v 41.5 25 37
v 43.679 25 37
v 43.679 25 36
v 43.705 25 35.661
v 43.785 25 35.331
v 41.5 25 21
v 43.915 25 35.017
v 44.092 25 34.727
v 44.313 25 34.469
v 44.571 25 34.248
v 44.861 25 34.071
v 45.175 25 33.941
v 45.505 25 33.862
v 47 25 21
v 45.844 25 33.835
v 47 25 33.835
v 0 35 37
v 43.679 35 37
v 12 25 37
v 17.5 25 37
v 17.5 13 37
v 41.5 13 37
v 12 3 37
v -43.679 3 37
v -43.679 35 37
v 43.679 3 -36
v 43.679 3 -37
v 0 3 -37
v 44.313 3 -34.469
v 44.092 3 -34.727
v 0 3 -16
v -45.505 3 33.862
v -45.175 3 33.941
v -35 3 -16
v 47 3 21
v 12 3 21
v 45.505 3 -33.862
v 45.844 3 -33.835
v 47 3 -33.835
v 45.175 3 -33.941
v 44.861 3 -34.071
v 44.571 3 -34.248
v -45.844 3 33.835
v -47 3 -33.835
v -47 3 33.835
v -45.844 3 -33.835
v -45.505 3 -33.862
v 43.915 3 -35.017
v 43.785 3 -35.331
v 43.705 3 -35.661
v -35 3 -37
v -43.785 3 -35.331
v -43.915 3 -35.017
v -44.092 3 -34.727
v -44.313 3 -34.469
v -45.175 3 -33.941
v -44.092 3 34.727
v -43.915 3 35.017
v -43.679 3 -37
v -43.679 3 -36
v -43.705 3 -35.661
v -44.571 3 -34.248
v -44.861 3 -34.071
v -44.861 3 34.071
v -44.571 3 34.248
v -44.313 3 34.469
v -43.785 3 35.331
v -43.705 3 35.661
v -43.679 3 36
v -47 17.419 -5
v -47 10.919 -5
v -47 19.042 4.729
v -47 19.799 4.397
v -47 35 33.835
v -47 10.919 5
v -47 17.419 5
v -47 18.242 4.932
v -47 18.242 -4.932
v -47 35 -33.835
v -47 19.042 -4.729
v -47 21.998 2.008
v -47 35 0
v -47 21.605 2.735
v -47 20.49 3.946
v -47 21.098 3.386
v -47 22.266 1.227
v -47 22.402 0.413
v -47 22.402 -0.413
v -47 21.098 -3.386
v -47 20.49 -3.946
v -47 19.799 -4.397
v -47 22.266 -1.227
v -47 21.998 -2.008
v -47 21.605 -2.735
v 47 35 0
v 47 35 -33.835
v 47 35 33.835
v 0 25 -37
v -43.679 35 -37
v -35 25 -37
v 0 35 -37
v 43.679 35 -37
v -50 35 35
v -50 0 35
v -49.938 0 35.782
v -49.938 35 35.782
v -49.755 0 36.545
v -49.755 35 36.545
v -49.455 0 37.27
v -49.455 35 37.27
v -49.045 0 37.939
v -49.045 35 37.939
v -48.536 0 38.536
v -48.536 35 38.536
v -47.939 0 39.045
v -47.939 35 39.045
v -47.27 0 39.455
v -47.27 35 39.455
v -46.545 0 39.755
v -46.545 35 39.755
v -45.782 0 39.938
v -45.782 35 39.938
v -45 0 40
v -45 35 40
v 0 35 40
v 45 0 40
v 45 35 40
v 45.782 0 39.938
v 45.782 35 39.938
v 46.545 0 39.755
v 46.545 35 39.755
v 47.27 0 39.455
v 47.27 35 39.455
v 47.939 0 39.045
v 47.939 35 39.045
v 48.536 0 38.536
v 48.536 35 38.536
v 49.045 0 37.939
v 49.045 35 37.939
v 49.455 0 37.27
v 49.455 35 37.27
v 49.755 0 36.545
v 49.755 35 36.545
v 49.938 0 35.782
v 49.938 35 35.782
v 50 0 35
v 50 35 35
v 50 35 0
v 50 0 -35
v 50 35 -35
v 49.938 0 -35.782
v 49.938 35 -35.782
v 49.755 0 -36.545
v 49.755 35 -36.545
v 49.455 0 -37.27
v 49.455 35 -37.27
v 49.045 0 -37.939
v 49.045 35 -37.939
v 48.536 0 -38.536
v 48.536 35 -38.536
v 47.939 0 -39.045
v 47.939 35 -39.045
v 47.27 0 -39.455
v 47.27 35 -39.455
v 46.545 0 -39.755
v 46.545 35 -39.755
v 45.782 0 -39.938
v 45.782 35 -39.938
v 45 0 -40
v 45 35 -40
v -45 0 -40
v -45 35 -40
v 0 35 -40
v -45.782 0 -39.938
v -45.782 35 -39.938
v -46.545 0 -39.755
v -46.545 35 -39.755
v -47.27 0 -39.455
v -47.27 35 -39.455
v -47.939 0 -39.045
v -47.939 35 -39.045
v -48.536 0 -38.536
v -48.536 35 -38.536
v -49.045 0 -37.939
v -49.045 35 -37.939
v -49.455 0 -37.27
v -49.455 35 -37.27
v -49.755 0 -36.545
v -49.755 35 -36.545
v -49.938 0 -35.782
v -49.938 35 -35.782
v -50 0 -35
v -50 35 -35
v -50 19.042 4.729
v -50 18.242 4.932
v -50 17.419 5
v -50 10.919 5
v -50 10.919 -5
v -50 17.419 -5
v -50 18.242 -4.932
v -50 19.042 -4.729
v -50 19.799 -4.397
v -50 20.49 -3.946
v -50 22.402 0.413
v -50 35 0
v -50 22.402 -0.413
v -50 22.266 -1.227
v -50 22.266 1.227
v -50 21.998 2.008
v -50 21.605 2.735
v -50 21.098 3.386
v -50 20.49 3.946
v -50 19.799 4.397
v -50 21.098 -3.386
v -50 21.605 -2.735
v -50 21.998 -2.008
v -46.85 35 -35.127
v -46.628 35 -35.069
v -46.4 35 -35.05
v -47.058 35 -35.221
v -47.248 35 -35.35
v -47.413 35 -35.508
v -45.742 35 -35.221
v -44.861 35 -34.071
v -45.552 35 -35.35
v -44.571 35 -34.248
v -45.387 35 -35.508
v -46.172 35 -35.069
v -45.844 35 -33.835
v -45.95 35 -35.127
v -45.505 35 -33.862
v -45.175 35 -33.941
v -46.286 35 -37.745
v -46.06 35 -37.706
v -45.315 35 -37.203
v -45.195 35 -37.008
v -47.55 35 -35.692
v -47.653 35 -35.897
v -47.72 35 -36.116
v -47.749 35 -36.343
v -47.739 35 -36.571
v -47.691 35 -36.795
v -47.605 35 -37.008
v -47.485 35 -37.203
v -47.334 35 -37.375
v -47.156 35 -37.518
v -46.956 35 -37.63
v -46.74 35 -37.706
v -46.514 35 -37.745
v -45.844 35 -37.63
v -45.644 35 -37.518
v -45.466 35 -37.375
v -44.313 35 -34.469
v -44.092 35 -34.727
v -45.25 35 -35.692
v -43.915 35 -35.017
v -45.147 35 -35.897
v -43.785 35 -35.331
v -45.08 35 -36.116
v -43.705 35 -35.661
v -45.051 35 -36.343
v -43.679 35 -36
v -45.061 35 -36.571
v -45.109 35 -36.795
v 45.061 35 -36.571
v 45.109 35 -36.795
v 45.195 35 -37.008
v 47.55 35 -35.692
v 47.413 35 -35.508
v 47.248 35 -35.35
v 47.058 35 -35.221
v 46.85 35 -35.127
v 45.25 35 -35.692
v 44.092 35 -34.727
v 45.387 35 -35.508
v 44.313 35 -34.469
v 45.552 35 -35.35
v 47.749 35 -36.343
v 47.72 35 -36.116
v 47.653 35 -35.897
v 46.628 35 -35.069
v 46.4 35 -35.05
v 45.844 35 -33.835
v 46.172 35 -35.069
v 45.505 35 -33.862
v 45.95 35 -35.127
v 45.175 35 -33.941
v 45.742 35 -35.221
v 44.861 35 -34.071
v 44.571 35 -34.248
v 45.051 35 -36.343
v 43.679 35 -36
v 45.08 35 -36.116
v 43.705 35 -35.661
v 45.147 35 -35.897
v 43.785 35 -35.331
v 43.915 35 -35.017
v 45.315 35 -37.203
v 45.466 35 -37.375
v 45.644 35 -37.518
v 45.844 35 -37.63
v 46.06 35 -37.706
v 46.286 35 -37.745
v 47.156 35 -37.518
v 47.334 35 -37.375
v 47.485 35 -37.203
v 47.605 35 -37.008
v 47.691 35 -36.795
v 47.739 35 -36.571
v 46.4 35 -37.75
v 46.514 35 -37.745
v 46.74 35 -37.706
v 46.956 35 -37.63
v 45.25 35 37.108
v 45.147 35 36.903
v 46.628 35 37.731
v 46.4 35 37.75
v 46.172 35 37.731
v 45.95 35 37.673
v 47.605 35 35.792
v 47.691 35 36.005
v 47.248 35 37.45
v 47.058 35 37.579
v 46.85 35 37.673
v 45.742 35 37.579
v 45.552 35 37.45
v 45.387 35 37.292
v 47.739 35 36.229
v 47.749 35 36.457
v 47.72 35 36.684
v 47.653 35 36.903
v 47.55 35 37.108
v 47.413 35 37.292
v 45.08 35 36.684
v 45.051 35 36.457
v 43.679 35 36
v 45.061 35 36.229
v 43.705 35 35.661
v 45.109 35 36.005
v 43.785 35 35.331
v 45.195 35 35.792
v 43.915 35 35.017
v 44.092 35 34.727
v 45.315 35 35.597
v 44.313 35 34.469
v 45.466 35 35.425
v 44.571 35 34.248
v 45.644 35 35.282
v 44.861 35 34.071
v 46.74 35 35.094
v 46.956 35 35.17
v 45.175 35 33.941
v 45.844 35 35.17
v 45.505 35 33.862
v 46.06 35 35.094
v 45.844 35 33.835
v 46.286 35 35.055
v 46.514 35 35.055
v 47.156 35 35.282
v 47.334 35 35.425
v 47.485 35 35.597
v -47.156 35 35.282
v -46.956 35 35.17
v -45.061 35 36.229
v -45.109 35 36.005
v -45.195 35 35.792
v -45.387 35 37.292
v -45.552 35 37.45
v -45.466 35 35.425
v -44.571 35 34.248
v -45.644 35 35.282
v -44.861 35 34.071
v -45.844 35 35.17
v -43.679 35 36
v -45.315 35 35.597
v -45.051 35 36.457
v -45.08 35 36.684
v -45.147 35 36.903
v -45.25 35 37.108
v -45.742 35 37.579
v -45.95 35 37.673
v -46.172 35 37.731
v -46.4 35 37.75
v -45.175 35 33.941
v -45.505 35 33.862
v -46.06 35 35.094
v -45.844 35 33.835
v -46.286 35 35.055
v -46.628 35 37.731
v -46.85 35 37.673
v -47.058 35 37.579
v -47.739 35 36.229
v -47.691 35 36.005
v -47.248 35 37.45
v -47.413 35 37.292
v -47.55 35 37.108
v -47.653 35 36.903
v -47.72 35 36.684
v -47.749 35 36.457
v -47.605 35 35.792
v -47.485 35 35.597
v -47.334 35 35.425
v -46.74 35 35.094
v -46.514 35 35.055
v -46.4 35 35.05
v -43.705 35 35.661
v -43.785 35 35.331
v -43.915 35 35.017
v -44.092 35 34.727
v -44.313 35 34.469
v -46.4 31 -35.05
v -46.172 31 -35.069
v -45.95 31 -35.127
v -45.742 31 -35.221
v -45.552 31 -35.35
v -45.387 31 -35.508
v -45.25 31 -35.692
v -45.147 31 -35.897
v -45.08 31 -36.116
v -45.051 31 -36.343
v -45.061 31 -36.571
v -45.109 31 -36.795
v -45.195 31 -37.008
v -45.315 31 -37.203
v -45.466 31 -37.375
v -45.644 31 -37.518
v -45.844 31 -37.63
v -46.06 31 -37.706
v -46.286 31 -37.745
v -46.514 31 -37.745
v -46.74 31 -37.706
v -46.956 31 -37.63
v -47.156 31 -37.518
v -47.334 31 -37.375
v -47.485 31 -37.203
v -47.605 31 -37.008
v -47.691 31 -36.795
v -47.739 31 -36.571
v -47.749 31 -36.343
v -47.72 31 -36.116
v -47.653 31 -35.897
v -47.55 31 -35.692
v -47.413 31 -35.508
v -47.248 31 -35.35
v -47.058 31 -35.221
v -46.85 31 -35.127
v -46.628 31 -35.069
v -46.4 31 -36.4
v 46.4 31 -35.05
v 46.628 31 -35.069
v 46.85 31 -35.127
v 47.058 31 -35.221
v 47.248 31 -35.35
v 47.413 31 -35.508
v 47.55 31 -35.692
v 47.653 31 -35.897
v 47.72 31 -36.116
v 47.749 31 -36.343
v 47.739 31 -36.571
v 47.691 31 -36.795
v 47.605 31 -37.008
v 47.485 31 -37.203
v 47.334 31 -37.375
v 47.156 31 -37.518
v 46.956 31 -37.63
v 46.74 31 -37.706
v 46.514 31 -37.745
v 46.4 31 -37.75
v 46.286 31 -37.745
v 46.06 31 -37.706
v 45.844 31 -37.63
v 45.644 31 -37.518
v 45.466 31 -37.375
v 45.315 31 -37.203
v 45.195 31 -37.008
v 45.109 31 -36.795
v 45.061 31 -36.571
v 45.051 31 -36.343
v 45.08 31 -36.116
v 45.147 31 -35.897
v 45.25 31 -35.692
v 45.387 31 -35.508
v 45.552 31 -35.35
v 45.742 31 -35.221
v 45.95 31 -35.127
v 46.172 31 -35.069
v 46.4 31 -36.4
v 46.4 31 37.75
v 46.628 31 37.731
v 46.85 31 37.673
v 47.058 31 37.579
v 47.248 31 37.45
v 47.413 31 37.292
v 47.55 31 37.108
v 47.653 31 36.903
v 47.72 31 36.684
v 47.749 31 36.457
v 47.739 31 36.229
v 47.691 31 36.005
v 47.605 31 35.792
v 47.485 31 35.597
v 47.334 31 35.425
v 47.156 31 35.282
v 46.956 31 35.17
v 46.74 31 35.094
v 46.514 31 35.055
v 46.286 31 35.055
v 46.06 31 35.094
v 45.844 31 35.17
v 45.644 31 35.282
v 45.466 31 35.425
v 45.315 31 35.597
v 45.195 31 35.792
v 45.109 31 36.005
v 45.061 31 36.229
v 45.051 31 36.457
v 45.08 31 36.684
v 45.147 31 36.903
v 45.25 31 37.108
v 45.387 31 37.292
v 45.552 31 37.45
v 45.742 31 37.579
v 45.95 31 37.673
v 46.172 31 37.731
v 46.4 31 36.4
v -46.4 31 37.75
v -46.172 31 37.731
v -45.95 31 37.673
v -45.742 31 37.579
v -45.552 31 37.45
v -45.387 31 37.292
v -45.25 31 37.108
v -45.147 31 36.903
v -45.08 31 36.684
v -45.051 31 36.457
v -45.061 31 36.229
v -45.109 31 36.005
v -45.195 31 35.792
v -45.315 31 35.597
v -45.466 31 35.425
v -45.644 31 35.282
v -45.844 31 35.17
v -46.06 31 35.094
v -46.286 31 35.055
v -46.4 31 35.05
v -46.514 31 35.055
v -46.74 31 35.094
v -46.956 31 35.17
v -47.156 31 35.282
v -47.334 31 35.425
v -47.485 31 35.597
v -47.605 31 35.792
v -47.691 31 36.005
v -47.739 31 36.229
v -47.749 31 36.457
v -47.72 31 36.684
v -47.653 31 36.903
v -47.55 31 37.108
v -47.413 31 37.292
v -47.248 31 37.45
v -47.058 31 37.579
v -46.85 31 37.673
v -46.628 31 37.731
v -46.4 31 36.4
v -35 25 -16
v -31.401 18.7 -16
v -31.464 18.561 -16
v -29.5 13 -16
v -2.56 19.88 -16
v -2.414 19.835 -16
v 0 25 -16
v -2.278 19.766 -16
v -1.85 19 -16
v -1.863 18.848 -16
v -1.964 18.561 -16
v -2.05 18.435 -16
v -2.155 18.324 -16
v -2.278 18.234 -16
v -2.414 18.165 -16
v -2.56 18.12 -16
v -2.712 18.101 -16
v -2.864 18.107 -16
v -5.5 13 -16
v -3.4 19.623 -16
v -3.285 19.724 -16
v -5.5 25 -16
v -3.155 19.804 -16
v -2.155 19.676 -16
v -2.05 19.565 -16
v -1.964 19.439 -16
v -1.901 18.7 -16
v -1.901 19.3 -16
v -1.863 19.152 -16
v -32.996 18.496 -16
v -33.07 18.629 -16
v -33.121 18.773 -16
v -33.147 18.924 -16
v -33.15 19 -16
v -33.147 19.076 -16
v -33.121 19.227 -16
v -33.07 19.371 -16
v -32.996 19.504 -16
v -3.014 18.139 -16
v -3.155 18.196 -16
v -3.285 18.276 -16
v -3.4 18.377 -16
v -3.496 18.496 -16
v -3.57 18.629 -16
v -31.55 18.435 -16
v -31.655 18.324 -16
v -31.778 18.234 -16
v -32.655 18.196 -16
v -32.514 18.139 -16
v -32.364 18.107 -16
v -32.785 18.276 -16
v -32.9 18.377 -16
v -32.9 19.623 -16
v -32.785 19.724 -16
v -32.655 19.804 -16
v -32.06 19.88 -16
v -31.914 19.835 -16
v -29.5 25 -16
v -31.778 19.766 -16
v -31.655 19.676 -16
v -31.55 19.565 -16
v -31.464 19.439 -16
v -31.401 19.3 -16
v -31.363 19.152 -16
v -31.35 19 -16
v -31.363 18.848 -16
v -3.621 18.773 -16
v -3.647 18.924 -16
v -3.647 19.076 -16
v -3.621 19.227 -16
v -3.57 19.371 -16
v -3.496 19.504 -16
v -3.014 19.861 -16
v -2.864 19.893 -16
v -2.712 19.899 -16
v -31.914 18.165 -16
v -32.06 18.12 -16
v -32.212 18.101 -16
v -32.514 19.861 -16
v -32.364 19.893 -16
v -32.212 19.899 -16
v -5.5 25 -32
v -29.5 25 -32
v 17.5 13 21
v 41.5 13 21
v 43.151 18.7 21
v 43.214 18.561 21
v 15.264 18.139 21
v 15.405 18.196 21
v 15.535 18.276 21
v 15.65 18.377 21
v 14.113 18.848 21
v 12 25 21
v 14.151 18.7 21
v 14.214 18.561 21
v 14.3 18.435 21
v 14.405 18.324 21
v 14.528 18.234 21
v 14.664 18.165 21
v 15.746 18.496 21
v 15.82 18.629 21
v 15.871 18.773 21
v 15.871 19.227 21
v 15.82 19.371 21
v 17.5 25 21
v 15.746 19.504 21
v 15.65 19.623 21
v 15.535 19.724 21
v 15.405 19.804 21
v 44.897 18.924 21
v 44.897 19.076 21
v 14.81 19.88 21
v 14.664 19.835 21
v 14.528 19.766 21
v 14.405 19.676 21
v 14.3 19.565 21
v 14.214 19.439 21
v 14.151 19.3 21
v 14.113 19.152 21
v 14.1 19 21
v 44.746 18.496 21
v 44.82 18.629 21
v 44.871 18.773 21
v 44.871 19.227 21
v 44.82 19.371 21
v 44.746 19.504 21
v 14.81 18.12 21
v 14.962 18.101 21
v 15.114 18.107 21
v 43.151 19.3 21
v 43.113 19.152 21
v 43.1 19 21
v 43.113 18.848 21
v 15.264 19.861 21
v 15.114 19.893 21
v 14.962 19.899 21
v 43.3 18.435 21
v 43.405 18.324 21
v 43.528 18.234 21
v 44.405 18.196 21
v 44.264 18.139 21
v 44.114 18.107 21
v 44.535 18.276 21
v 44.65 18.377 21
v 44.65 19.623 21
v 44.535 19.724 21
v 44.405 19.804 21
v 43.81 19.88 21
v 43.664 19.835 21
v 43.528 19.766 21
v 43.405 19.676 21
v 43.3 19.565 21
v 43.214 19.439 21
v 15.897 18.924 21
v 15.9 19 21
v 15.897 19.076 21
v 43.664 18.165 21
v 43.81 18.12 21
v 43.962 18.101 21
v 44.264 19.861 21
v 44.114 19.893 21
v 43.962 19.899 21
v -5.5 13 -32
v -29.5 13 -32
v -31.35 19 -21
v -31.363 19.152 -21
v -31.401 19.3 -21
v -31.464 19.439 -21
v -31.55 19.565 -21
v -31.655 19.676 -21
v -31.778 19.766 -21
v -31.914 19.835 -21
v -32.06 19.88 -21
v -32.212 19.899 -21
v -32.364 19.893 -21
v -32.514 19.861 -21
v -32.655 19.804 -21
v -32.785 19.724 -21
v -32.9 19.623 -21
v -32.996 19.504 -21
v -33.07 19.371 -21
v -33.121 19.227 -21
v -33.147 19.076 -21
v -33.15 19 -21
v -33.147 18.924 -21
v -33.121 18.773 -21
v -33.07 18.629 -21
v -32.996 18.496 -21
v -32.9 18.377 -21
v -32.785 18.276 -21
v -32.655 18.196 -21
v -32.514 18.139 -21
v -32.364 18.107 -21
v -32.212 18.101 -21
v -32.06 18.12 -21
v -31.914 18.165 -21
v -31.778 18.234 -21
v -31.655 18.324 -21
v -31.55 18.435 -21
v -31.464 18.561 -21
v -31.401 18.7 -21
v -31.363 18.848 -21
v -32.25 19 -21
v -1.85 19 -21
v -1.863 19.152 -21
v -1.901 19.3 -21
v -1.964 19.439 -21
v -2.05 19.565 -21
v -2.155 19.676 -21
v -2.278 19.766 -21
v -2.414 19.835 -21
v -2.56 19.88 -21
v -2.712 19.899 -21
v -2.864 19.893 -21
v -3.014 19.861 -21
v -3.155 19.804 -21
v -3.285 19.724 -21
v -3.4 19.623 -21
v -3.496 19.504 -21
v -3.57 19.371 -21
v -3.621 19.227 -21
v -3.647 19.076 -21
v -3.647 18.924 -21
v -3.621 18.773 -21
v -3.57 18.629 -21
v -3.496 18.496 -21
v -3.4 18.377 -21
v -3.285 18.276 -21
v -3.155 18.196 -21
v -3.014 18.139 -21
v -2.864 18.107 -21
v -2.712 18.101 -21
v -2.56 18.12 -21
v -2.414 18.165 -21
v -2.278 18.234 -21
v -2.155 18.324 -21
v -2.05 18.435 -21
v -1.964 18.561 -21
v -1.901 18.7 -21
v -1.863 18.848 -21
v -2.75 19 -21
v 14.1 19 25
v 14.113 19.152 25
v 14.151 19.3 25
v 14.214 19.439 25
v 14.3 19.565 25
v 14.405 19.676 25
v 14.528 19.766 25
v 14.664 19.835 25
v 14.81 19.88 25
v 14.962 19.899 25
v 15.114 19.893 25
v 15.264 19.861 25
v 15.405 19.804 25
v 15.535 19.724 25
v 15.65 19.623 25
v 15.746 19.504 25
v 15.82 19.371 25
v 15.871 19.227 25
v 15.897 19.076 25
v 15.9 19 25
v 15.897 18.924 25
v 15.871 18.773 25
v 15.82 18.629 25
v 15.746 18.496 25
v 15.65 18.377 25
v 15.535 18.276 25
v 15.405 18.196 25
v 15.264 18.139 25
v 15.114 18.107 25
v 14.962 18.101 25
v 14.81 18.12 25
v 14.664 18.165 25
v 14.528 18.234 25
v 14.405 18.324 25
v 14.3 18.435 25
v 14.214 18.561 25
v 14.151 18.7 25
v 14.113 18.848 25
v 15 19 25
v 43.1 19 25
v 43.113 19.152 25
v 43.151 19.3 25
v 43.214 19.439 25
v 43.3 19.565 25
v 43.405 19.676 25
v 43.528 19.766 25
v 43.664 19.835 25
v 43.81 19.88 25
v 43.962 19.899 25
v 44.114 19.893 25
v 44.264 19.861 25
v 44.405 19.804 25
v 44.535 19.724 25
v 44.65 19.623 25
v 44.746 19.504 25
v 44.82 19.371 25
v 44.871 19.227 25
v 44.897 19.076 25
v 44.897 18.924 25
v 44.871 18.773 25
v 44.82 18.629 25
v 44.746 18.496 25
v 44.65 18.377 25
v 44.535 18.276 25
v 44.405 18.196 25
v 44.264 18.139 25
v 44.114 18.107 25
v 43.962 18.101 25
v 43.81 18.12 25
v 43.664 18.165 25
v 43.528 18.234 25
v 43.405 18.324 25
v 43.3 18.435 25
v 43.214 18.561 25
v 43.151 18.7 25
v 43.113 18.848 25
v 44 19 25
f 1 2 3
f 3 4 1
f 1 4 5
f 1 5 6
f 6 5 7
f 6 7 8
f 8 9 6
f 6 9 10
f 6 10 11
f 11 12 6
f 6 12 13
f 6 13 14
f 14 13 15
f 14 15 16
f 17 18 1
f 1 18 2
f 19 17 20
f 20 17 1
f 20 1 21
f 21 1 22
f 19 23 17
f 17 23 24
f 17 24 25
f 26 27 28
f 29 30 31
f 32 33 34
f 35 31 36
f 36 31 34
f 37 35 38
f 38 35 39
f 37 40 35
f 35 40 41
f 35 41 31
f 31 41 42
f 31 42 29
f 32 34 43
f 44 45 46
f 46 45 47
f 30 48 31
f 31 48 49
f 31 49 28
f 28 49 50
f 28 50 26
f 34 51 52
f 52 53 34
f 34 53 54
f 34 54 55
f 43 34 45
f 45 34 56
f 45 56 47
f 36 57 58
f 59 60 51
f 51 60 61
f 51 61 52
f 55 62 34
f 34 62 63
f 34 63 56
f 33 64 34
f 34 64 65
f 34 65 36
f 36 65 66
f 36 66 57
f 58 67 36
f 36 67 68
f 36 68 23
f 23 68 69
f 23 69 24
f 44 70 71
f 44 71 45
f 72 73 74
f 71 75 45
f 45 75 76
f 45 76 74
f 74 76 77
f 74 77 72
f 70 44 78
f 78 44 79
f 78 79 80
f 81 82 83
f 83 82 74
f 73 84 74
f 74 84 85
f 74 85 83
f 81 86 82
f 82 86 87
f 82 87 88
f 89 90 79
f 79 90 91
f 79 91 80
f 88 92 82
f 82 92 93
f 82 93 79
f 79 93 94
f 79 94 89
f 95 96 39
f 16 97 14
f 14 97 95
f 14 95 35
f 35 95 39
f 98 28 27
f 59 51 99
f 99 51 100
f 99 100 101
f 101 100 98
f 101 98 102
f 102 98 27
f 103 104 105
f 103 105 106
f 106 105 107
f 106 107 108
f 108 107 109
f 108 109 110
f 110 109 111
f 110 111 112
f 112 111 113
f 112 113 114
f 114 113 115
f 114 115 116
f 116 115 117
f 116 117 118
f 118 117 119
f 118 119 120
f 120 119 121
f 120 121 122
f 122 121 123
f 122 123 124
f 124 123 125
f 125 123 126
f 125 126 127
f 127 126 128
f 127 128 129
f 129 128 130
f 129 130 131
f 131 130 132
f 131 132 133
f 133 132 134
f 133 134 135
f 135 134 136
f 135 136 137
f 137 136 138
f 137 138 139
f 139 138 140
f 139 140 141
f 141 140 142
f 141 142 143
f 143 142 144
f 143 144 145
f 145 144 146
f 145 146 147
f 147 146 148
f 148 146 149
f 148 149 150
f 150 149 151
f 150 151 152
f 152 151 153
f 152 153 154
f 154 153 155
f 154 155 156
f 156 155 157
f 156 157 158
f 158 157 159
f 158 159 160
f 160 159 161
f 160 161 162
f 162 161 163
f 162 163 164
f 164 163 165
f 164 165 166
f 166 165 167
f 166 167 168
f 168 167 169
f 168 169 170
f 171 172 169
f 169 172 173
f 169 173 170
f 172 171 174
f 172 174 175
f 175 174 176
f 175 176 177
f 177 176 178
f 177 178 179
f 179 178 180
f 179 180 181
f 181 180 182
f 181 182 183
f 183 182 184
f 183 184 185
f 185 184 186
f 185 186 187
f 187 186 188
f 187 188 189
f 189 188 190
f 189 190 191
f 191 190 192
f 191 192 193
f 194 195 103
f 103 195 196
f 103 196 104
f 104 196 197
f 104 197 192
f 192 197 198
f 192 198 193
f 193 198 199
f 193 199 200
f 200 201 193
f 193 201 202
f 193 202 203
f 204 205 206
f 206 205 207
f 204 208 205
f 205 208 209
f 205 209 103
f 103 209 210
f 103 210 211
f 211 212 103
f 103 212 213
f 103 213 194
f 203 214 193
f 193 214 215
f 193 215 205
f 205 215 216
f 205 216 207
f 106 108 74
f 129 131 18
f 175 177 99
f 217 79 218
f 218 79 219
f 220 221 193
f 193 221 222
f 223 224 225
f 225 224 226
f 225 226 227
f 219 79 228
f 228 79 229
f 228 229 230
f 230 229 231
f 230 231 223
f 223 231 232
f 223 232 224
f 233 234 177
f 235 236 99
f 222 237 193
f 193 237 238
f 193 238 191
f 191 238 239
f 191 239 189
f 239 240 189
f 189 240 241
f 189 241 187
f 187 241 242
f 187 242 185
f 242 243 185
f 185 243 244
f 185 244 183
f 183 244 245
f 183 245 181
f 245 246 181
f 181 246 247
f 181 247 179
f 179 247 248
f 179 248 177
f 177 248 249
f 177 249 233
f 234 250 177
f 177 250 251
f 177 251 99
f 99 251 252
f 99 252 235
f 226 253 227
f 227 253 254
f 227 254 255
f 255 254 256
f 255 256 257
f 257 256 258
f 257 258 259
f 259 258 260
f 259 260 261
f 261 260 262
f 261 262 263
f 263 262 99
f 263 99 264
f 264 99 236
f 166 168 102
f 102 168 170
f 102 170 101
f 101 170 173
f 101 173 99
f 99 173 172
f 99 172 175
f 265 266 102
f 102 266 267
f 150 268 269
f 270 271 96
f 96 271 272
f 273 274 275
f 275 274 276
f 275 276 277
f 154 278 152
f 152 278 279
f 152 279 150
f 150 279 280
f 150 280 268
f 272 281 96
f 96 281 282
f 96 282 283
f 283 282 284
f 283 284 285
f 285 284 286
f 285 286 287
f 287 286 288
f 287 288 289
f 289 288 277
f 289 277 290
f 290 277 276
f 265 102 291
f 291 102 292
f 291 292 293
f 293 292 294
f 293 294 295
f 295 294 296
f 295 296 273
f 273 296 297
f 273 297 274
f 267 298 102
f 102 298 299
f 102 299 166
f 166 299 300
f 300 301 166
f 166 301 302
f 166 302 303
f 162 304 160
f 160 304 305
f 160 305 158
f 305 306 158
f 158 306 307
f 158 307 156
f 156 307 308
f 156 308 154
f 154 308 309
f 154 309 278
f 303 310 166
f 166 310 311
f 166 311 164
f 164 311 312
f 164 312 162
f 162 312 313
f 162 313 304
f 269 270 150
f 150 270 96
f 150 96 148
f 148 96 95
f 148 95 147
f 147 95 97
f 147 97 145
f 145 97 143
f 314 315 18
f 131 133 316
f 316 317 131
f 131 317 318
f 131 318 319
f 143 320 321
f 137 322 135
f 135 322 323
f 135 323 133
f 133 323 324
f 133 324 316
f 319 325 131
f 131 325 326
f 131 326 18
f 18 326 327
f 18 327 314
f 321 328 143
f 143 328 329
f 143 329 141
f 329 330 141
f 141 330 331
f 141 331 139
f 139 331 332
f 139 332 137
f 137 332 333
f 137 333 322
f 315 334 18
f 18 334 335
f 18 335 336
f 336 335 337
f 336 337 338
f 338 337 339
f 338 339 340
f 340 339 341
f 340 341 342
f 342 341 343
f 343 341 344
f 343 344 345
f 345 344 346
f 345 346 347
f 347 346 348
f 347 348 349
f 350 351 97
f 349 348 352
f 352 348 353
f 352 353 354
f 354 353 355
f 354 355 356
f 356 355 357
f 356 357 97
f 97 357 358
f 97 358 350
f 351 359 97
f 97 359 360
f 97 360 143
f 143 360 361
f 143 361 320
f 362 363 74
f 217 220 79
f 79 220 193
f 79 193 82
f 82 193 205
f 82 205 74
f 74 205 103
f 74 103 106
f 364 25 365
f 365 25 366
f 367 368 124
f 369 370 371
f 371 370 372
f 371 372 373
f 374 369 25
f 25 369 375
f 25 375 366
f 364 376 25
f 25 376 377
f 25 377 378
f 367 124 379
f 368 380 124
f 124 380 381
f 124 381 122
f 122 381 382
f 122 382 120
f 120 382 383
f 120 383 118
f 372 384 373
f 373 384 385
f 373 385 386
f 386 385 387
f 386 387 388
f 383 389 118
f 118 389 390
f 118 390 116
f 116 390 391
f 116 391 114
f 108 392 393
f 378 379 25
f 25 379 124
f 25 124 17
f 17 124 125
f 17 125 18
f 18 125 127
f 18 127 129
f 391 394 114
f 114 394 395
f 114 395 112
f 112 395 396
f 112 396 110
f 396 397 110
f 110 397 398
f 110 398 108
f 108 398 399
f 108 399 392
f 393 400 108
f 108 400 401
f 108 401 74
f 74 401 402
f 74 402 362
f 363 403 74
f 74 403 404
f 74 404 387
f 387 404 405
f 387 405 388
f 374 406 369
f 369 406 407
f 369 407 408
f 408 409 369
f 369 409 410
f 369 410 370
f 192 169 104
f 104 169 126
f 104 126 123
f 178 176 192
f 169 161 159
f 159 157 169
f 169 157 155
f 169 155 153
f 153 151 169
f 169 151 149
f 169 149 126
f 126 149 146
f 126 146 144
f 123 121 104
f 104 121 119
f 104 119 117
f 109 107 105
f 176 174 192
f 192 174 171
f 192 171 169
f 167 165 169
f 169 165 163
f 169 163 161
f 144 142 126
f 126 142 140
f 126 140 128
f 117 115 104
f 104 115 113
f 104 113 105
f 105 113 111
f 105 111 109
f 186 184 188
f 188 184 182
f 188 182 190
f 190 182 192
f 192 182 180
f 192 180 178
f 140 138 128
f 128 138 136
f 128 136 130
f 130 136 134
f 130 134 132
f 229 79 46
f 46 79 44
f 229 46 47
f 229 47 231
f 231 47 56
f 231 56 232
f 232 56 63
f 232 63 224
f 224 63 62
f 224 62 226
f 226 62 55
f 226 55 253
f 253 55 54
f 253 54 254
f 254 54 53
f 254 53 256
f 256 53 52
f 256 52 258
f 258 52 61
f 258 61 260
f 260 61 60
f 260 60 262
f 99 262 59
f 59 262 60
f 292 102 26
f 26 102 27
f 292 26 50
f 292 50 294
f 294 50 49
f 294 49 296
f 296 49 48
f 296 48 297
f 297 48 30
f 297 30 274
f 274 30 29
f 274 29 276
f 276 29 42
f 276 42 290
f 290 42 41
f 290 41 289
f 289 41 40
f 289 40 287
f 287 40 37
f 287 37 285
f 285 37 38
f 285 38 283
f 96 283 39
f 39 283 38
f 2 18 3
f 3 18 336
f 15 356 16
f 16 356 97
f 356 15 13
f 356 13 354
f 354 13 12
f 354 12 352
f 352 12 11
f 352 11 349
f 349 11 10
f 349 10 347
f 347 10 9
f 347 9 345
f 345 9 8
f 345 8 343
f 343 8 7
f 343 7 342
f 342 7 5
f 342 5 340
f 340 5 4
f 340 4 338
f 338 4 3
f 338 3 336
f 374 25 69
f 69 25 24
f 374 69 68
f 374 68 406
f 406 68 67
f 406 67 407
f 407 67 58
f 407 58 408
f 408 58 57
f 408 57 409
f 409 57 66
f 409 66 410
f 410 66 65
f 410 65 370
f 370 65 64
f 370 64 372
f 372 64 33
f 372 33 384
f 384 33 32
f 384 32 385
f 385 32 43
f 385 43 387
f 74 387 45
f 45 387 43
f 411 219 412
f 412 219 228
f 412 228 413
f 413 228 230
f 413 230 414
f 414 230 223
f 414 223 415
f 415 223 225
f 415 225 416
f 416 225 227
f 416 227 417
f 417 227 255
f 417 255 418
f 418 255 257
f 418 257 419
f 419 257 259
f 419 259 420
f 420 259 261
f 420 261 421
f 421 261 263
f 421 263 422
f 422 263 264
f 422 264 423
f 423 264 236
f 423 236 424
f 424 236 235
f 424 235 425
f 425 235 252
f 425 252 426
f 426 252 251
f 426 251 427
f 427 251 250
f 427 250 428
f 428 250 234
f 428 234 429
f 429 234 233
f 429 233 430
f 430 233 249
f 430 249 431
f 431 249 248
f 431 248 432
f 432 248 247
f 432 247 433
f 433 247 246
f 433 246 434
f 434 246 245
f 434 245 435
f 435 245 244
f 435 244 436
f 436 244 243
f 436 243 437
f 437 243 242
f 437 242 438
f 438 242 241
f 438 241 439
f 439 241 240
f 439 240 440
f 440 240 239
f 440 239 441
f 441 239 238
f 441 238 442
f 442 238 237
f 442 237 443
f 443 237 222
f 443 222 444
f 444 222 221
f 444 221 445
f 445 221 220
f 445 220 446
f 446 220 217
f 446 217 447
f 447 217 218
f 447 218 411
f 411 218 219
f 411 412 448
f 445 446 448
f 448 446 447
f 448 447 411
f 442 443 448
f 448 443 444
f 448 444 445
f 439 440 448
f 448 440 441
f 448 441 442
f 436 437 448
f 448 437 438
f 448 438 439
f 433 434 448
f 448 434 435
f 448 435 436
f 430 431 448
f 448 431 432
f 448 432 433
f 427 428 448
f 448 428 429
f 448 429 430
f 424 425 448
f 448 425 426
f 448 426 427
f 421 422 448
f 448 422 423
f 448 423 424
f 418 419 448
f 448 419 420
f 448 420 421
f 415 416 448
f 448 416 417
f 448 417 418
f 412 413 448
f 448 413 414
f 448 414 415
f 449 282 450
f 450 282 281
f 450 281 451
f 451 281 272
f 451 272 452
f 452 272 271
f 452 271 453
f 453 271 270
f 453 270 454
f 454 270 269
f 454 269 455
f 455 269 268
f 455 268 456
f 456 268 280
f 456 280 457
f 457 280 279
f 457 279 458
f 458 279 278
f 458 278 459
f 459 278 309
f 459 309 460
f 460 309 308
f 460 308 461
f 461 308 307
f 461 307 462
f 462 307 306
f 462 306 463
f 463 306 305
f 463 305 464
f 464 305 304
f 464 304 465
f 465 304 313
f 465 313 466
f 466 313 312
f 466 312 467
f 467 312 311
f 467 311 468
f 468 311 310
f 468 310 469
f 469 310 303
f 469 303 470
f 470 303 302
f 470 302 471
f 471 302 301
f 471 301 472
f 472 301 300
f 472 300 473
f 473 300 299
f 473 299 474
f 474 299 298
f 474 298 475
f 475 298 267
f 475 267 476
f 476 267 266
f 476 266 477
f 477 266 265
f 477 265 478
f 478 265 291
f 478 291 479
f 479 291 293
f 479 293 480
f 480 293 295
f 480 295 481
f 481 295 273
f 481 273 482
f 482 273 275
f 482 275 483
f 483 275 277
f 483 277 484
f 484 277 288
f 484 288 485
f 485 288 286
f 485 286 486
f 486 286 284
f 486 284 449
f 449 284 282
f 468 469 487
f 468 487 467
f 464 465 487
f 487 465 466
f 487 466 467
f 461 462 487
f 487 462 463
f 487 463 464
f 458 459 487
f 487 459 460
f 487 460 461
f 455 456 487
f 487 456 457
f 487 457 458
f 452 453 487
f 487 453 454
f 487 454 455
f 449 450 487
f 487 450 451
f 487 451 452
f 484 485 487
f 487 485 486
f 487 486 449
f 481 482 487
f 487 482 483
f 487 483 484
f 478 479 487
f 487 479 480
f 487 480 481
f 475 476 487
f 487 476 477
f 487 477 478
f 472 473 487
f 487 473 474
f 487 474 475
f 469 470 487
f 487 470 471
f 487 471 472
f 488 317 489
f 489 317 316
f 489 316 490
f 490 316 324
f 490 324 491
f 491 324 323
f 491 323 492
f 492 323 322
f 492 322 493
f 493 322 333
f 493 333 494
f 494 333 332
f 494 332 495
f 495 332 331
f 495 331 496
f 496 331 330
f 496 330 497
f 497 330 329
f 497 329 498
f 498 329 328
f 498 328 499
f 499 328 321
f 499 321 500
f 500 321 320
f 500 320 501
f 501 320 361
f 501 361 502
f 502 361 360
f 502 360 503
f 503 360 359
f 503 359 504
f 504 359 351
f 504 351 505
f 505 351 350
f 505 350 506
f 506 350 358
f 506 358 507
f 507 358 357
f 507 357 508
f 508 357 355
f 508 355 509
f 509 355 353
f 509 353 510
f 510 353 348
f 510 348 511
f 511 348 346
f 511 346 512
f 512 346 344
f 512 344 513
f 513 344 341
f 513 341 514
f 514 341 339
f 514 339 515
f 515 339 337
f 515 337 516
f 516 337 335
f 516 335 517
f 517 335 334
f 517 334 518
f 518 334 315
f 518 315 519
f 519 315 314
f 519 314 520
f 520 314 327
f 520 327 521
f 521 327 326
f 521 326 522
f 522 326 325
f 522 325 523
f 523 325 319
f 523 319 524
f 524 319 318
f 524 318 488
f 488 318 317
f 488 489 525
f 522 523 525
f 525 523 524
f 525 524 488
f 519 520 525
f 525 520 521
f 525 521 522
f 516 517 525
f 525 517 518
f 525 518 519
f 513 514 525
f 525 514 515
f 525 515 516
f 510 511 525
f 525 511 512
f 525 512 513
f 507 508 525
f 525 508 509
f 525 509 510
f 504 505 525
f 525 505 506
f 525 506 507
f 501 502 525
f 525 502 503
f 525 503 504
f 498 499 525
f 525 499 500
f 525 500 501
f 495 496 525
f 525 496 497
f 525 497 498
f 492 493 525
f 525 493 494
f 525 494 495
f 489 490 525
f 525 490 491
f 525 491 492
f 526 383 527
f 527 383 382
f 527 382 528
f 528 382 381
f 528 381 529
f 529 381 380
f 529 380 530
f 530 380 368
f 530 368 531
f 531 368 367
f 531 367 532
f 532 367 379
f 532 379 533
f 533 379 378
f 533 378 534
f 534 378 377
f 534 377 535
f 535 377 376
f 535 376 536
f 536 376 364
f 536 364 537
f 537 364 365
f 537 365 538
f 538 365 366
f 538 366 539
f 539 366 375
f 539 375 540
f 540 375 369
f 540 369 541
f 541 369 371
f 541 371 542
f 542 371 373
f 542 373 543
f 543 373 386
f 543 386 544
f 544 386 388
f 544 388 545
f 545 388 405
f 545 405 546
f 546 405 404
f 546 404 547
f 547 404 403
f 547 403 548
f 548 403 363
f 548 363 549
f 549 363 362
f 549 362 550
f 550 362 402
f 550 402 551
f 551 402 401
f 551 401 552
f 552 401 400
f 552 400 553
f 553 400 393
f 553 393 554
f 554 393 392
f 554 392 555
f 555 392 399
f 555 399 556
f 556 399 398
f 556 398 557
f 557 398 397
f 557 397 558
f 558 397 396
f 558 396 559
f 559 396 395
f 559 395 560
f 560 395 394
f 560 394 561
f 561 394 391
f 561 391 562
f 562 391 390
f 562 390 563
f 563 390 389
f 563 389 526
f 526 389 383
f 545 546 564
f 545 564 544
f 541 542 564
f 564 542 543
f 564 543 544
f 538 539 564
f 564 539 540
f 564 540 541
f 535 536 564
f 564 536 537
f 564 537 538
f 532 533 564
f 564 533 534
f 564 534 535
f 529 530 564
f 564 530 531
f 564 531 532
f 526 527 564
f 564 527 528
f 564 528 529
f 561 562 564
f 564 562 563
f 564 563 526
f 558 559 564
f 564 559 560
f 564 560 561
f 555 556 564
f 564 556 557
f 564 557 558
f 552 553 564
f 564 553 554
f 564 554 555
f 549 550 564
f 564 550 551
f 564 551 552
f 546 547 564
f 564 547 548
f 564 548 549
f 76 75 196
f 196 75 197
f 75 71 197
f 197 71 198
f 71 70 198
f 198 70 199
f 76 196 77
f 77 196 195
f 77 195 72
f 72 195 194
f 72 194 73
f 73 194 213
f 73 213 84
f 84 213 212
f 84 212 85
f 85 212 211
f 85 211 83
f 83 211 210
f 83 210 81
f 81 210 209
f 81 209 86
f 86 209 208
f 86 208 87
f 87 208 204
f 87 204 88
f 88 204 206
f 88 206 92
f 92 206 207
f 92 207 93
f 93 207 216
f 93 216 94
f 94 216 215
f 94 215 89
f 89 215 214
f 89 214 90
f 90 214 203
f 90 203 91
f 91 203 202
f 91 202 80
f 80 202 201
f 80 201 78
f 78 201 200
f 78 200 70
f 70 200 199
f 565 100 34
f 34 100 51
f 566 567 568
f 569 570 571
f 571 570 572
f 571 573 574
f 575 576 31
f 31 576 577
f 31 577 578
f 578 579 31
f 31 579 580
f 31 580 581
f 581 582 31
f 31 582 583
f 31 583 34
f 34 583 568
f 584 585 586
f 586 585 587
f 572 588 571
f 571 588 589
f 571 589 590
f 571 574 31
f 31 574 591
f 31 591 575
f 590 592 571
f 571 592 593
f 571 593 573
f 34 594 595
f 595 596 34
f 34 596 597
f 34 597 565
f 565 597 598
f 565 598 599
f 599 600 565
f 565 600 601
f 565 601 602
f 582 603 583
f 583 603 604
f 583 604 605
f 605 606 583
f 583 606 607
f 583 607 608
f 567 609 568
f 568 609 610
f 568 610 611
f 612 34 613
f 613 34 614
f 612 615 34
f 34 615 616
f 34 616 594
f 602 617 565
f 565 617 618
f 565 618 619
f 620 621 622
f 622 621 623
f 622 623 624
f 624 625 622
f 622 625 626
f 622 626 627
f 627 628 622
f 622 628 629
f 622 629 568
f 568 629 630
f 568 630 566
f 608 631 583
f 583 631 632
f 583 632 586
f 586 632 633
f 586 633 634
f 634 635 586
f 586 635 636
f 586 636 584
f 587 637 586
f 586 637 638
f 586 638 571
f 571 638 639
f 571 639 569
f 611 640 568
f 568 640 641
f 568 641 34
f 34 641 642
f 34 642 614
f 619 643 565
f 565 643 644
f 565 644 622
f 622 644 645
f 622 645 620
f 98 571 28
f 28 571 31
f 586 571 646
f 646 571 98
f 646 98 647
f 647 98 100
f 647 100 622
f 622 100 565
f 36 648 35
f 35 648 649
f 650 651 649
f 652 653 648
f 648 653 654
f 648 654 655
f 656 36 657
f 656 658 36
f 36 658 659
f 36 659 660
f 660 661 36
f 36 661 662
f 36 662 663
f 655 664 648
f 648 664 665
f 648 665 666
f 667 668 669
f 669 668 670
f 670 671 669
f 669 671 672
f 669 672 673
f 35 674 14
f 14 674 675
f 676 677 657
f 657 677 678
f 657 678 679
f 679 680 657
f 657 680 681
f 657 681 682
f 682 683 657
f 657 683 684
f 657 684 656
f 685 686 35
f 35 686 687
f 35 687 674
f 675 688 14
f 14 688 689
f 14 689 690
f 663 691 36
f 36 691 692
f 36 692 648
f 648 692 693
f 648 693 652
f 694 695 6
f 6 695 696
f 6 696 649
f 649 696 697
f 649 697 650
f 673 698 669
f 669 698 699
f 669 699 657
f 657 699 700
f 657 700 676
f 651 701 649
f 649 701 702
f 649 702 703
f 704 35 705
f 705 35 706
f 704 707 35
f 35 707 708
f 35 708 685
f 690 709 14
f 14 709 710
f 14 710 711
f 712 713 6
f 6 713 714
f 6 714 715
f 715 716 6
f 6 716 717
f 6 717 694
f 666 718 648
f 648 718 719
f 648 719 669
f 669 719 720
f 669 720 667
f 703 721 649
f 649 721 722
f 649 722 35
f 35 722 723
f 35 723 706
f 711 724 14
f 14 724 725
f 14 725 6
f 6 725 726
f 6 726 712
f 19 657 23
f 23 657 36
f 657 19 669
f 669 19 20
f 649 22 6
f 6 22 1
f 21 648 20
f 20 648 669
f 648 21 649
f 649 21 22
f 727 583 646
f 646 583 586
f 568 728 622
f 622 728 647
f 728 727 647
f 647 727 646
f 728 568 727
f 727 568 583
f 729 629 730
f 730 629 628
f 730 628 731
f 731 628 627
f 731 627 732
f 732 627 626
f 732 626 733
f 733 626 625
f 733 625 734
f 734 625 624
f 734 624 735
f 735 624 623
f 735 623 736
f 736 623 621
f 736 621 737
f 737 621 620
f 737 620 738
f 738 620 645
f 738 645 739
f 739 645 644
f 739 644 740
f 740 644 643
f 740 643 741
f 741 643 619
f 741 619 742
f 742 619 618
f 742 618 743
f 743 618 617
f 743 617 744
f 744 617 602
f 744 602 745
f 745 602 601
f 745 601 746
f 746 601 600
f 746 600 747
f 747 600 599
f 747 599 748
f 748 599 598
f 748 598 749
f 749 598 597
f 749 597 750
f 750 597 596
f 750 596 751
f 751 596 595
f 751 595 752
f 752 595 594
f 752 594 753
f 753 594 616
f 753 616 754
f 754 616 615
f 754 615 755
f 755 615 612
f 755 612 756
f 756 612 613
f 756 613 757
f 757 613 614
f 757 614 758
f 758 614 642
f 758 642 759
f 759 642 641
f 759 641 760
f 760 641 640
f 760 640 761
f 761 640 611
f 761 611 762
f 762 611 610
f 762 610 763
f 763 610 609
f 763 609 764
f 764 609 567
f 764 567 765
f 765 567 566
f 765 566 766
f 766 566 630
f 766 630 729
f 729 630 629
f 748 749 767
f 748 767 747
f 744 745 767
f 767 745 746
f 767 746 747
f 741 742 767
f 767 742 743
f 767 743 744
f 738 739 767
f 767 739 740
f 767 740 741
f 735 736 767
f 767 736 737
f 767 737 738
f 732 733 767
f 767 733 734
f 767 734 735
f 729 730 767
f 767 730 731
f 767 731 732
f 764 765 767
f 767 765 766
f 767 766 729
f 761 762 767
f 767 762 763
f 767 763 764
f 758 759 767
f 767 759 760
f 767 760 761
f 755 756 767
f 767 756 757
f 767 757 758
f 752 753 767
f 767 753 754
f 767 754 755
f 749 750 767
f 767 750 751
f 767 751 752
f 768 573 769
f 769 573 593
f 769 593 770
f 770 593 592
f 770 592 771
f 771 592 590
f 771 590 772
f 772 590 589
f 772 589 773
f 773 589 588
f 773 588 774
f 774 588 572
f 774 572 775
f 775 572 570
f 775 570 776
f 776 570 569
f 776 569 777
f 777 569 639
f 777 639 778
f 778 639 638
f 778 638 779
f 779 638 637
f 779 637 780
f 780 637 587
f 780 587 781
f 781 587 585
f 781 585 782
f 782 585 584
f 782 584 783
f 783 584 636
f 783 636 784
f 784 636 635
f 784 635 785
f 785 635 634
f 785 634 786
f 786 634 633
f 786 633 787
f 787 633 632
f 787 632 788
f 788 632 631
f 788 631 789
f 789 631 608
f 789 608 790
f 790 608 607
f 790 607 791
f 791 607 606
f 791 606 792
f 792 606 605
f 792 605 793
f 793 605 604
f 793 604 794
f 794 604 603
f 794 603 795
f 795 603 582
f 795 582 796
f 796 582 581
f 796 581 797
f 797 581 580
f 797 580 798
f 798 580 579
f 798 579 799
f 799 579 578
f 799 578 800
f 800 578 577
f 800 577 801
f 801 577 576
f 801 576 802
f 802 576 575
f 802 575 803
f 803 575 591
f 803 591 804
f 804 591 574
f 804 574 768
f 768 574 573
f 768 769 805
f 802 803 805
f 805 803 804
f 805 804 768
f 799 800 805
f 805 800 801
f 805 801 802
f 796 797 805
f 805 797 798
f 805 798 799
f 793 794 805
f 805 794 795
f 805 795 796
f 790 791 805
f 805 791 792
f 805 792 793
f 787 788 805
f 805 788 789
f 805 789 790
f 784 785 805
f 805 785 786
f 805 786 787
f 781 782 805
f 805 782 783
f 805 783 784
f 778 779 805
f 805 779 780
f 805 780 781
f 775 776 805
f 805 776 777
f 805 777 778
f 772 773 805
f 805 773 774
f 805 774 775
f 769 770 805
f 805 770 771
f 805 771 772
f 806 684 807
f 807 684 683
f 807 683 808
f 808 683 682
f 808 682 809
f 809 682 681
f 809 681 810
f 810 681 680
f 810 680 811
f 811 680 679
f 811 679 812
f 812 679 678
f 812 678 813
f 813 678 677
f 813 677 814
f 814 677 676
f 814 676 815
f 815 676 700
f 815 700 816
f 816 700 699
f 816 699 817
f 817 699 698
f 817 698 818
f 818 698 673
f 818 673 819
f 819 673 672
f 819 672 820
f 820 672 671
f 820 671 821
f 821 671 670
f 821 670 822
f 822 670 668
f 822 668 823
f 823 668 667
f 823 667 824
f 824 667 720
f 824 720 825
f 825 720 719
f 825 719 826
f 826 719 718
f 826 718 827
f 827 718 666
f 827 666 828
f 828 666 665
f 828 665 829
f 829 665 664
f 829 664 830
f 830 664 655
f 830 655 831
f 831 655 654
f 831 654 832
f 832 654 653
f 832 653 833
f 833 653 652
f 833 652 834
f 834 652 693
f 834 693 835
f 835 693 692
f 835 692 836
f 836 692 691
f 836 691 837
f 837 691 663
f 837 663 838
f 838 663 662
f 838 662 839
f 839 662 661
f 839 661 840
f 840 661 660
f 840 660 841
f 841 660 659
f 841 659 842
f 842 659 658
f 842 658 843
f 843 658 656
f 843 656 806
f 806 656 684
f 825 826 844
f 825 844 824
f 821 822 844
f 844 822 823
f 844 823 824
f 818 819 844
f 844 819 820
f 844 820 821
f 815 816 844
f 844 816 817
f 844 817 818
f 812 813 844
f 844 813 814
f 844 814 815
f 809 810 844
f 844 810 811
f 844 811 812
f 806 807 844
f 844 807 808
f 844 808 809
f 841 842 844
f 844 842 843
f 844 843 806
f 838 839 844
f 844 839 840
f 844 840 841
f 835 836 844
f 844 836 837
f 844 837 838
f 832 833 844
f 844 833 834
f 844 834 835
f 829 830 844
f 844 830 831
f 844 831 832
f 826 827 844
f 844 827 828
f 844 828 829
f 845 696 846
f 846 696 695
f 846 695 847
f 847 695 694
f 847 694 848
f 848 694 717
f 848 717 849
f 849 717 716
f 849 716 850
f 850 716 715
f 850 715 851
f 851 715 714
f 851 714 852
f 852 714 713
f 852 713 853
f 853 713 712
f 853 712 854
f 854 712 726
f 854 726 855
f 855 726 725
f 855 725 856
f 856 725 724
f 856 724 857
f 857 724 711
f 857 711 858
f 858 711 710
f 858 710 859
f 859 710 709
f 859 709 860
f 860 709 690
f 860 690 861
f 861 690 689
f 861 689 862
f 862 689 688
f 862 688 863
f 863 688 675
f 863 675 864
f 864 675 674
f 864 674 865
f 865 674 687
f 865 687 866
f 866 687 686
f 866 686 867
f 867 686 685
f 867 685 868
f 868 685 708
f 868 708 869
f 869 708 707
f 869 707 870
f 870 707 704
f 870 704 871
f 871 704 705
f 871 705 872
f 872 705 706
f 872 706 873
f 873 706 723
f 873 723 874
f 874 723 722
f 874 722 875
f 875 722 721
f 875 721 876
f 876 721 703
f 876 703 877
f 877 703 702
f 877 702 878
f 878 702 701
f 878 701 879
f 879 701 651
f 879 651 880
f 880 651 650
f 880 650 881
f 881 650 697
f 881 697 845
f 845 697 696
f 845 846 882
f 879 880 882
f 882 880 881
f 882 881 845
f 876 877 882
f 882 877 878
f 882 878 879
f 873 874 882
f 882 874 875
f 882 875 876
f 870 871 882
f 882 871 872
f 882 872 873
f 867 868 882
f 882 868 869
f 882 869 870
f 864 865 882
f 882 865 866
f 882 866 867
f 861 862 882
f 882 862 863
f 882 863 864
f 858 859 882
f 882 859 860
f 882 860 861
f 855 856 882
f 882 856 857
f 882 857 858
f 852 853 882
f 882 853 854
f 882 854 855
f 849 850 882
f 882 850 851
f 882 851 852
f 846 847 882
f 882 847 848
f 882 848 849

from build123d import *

# Parameters (mm, degrees)
EXTRUDE_1_DEPTH     = 35
SHELL_2_T           = -3
EXTRUDE_3_DEPTH     = 32
SKETCH_3_R          = 1.35
CUT_EXTRUDE_1_DEPTH = 4
CUT_EXTRUDE_4_DEPTH = 3
SKETCH_7_W          = 35
SKETCH_7_H          = 21
SKETCH_7_H_2        = 16
EXTRUDE_4_DEPTH     = 22
SKETCH_8_W          = 24
SKETCH_8_H          = 16
CUT_EXTRUDE_5_DEPTH = 12
SKETCH_9_R          = 0.9
CUT_EXTRUDE_6_DEPTH = 5
SKETCH_10_R         = 0.9
CUT_EXTRUDE_7_DEPTH = 4


with BuildPart() as part:
    # 草图1 → 凸台-拉伸1 (new body)
    with BuildSketch(Plane(origin=(0, 0, 0), x_dir=(1, 0, 0), z_dir=(0, 1, 0))):
        with BuildLine():
            Line((-45, 40), (45, 40))
            ThreePointArc((45, 40), (48.535533906, 38.535533906), (50, 35))
            Line((50, 35), (50, -35))
            ThreePointArc((50, -35), (48.535533906, -38.535533906), (45, -40))
            Line((45, -40), (-45, -40))
            ThreePointArc((-45, -40), (-48.535533906, -38.535533906), (-50, -35))
            Line((-50, -35), (-50, 35))
            ThreePointArc((-50, 35), (-48.535533906, 38.535533906), (-45, 40))
        make_face()
    extrude(amount=EXTRUDE_1_DEPTH)

    # 抽壳2
    shell_2_openings = [part.faces().sort_by_distance(p)[0] for p in [
        (0, 35, 0),
    ]]
    offset(amount=SHELL_2_T, openings=shell_2_openings, kind=Kind.INTERSECTION)

    # 草图2 → 凸台-拉伸3 (add)
    with BuildSketch(Plane(origin=(0, 3, 0), x_dir=(1, 0, 0), z_dir=(0, 1, 0))):
        with BuildLine():
            Line((47, 33.834963516), (47, 35))
            ThreePointArc((47, 35), (46.414213562, 36.414213562), (45, 37))
            Line((45, 37), (43.678814145, 37))
            Line((43.678814145, 37), (43.678814145, 36))
            ThreePointArc((43.678814145, 36), (44.31293865, 34.46908802), (45.843850629, 33.834963516))
            Line((45.843850629, 33.834963516), (47, 33.834963516))
        make_face()
        with BuildLine():
            Line((-43.678814145, 36), (-43.678814145, 37))
            Line((-43.678814145, 37), (-45, 37))
            ThreePointArc((-45, 37), (-46.414213562, 36.414213562), (-47, 35))
            Line((-47, 35), (-47, 33.834963516))
            Line((-47, 33.834963516), (-45.843850629, 33.834963516))
            ThreePointArc((-45.843850629, 33.834963516), (-44.31293865, 34.46908802), (-43.678814145, 36))
        make_face()
        with BuildLine():
            Line((43.678814145, -37), (45, -37))
            ThreePointArc((45, -37), (46.414213562, -36.414213562), (47, -35))
            Line((47, -35), (47, -33.834963516))
            Line((47, -33.834963516), (45.843850629, -33.834963516))
            ThreePointArc((45.843850629, -33.834963516), (44.31293865, -34.46908802), (43.678814145, -36))
            Line((43.678814145, -36), (43.678814145, -37))
        make_face()
        with BuildLine():
            Line((-47, -33.834963516), (-47, -35))
            ThreePointArc((-47, -35), (-46.414213562, -36.414213562), (-45, -37))
            Line((-45, -37), (-43.678814145, -37))
            Line((-43.678814145, -37), (-43.678814145, -36))
            ThreePointArc((-43.678814145, -36), (-44.31293865, -34.46908802), (-45.843850629, -33.834963516))
            Line((-45.843850629, -33.834963516), (-47, -33.834963516))
        make_face()
    extrude(amount=EXTRUDE_3_DEPTH)

    # 草图3 → 切除-拉伸1 (cut)
    with BuildSketch(Plane(origin=(0, 35, 0), x_dir=(1, 0, 0), z_dir=(0, 1, 0))):
        with Locations((-46.4, 36.4)):
            Circle(SKETCH_3_R)
        with Locations((46.4, 36.4)):
            Circle(SKETCH_3_R)
        with Locations((46.4, -36.4)):
            Circle(SKETCH_3_R)
        with Locations((-46.4, -36.4)):
            Circle(SKETCH_3_R)
    extrude(amount=-CUT_EXTRUDE_1_DEPTH, mode=Mode.SUBTRACT)

    # 草图6 → 切除-拉伸4 (cut)
    with BuildSketch(Plane.ZY.offset(50)):
        with BuildLine():
            Line((-5, 17.418982567), (-5, 10.918982567))
            Line((-5, 10.918982567), (5, 10.918982567))
            Line((5, 10.918982567), (5, 17.418982567))
            ThreePointArc((5, 17.418982567), (0, 22.418982567), (-5, 17.418982567))
        make_face()
    extrude(amount=-CUT_EXTRUDE_4_DEPTH, mode=Mode.SUBTRACT)

    # 草图7 → 凸台-拉伸4 (add)
    with BuildSketch(Plane(origin=(0, 3, 0), x_dir=(1, 0, 0), z_dir=(0, 1, 0))):
        with Locations((-17.5, 26.5)):
            Rectangle(SKETCH_7_W, SKETCH_7_H)
        with Locations((29.5, -29)):
            Rectangle(SKETCH_7_W, SKETCH_7_H_2)
    extrude(amount=EXTRUDE_4_DEPTH)

    # 草图8 → 切除-拉伸5 (cut)
    with BuildSketch(Plane(origin=(0, 25, 0), x_dir=(1, 0, 0), z_dir=(0, 1, 0))):
        with Locations((29.5, -29)):
            Rectangle(SKETCH_8_W, SKETCH_8_H)
        with Locations((-17.5, 24)):
            Rectangle(SKETCH_8_W, SKETCH_8_H)
    extrude(amount=-CUT_EXTRUDE_5_DEPTH, mode=Mode.SUBTRACT)

    # 草图9 → 切除-拉伸6 (cut)
    with BuildSketch(Plane.XY.offset(-16)):
        with Locations((-2.75, 19)):
            Circle(SKETCH_9_R)
        with Locations((-32.25, 19)):
            Circle(SKETCH_9_R)
    extrude(amount=-CUT_EXTRUDE_6_DEPTH, mode=Mode.SUBTRACT)

    # 草图10 → 切除-拉伸7 (cut)
    with BuildSketch(Plane(origin=(0, 0, 21), x_dir=(-1, 0, 0), z_dir=(0, 0, -1))):
        with Locations((-44, 19)):
            Circle(SKETCH_10_R)
        with Locations((-15, 19)):
            Circle(SKETCH_10_R)
    extrude(amount=-CUT_EXTRUDE_7_DEPTH, mode=Mode.SUBTRACT)


solid = part.part
